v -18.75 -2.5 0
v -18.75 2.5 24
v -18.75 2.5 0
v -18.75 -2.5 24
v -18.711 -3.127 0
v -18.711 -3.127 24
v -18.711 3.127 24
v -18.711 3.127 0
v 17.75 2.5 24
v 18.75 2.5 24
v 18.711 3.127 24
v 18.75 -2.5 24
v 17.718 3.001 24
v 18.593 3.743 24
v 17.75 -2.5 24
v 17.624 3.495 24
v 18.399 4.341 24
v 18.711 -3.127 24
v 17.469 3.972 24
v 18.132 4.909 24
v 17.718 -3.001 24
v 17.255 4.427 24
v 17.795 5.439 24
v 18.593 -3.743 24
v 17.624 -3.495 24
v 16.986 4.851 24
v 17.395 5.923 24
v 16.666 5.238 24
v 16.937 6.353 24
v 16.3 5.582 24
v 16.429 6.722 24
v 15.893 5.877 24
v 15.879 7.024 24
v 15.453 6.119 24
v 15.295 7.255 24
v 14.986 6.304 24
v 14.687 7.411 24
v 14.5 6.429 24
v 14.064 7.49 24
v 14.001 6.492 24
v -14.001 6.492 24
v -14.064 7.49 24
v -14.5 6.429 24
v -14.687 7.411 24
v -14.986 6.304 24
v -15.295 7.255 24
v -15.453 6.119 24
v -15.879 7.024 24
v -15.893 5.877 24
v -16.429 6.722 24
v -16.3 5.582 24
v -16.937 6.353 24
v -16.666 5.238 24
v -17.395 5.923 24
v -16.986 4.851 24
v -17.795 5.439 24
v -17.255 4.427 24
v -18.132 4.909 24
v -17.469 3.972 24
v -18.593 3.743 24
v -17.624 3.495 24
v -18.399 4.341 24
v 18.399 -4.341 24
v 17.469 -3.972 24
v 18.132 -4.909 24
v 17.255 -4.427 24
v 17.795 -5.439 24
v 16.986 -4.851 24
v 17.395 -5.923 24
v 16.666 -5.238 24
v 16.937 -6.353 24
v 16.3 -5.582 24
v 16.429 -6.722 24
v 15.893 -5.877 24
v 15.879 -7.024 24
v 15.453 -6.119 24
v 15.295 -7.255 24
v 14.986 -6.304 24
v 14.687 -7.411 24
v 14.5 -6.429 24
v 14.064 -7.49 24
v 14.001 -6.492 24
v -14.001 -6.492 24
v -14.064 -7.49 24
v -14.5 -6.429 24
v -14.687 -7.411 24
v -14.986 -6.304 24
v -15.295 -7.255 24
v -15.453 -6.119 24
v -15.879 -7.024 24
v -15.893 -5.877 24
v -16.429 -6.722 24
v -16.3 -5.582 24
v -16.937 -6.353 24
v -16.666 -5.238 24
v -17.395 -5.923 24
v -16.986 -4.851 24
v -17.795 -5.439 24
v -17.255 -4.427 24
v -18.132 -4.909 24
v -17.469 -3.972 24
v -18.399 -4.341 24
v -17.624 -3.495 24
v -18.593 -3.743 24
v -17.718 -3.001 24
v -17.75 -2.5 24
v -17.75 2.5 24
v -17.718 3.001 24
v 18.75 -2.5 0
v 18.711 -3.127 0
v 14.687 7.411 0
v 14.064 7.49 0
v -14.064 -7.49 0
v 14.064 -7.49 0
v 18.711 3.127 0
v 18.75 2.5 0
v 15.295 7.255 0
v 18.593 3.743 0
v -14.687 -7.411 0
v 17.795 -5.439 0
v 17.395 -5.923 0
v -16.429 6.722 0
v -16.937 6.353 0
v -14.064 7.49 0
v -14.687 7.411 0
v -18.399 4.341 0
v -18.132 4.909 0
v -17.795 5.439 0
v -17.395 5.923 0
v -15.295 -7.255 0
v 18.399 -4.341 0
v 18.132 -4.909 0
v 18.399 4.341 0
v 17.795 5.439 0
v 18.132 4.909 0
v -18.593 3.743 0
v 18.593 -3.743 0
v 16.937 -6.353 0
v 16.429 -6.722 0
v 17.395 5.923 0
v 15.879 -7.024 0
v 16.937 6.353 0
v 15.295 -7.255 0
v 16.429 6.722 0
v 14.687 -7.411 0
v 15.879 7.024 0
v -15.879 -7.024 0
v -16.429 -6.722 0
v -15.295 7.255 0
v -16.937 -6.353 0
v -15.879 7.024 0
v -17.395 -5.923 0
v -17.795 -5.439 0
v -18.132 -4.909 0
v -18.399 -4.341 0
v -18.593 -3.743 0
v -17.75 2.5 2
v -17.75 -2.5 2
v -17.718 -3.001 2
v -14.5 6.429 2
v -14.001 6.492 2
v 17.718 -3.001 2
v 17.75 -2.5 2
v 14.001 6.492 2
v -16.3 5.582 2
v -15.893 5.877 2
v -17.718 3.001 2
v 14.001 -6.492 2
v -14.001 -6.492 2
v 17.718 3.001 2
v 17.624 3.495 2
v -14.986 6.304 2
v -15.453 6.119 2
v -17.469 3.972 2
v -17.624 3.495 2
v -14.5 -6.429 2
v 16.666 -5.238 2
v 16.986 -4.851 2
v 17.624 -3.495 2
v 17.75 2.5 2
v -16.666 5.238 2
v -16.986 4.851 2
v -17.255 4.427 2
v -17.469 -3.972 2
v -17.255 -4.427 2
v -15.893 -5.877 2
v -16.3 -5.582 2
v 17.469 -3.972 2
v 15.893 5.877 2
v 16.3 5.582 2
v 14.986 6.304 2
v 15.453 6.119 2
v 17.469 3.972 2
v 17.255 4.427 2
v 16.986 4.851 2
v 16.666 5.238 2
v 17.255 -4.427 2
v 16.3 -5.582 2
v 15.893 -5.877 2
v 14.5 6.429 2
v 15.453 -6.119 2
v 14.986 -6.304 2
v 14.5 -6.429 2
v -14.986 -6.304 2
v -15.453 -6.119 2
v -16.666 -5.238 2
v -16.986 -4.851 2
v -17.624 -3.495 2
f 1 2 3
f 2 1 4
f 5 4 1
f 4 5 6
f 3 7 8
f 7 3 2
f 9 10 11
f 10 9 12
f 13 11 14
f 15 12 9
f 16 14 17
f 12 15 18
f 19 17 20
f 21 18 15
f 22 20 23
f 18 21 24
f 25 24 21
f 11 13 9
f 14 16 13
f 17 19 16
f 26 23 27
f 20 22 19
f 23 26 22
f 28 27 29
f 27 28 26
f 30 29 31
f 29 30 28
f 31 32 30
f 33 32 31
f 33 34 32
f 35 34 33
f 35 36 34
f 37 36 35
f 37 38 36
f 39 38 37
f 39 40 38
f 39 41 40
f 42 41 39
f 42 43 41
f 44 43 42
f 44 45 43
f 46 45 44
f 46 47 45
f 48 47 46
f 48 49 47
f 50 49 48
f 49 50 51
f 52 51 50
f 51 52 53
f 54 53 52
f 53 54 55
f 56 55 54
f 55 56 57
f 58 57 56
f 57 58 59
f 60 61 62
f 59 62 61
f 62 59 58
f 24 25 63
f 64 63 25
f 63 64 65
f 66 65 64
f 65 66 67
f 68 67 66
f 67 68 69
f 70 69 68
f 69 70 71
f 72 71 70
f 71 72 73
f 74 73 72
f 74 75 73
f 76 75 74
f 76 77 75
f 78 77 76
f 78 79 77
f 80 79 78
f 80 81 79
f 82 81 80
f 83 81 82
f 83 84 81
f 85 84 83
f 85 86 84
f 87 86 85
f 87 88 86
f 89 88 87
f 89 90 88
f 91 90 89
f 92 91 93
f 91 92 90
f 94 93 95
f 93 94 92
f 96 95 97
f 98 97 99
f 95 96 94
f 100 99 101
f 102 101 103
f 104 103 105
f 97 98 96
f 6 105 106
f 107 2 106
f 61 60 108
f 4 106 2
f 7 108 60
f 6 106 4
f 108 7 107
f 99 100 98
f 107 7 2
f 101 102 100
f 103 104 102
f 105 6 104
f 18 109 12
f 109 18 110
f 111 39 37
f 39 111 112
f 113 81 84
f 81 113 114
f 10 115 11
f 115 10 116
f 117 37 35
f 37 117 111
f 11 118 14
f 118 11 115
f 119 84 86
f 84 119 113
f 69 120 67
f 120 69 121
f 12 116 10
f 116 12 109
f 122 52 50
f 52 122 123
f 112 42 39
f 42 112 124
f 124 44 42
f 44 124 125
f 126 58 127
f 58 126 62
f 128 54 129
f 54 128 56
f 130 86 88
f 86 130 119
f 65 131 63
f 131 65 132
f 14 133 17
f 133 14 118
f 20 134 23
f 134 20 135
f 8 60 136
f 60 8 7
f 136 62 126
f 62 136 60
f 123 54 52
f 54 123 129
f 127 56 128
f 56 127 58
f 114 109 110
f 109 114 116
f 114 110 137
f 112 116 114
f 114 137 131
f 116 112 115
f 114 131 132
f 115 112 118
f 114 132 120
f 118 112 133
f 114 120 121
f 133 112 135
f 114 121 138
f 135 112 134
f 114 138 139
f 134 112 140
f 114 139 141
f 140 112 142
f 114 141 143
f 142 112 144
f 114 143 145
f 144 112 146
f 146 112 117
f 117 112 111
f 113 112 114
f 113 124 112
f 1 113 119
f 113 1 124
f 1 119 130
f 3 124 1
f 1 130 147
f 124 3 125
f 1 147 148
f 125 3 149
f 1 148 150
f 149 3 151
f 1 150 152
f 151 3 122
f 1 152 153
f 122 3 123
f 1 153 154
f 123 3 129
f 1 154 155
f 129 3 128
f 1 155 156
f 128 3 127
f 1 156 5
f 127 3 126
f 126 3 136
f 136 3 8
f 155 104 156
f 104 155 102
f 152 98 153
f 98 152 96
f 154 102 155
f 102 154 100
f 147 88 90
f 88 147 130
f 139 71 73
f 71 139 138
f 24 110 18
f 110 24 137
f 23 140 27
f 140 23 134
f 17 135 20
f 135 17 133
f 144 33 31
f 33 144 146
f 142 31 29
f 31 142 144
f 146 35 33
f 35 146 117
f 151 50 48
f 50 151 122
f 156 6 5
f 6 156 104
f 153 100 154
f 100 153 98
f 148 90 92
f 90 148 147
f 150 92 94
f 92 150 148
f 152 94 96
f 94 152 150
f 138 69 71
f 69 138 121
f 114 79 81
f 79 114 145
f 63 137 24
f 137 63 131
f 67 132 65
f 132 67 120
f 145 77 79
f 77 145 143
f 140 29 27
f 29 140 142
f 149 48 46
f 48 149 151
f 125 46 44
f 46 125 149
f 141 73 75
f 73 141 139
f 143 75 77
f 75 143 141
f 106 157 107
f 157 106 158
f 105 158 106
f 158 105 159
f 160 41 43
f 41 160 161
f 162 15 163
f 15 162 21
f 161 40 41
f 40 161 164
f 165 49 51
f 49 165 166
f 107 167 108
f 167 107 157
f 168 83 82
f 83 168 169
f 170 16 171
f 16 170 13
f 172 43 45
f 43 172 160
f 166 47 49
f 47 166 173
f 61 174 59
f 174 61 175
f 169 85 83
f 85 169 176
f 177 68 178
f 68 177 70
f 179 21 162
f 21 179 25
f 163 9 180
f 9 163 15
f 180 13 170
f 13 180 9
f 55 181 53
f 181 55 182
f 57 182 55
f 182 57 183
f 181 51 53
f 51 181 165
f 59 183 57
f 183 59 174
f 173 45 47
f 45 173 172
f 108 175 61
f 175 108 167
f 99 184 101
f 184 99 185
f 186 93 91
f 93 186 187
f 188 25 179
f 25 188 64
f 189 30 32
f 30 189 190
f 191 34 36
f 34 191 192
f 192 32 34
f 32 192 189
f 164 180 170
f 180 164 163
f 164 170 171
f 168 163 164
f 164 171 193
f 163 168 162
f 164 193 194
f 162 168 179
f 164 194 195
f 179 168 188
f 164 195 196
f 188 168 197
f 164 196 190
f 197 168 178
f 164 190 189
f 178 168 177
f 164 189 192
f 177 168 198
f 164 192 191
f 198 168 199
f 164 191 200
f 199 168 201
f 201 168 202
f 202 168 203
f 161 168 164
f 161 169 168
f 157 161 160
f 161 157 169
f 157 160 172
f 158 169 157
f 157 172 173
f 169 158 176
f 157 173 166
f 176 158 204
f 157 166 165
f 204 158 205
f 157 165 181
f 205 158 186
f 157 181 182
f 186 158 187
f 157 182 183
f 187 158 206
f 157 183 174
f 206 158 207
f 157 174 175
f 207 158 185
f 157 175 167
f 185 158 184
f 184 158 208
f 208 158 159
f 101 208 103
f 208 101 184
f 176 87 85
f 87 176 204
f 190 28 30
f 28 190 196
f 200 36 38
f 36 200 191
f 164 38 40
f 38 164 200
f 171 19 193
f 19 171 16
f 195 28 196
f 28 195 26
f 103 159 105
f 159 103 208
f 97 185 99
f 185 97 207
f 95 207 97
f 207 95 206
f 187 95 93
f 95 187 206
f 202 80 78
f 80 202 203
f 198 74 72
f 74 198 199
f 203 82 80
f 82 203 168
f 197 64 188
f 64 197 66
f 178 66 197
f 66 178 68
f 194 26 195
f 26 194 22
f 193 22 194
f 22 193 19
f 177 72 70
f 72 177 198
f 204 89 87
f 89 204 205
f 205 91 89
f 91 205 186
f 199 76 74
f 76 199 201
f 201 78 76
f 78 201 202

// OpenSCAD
$fn = 50;


difference() {
	union() {
		hull() {
			translate(v = [-13.7500000000, 2.5000000000, 0]) {
				cylinder(h = 24, r = 5);
			}
			translate(v = [13.7500000000, 2.5000000000, 0]) {
				cylinder(h = 24, r = 5);
			}
			translate(v = [-13.7500000000, -2.5000000000, 0]) {
				cylinder(h = 24, r = 5);
			}
			translate(v = [13.7500000000, -2.5000000000, 0]) {
				cylinder(h = 24, r = 5);
			}
		}
	}
	union() {
		translate(v = [0, 0, 2]) {
			hull() {
				translate(v = [-13.7500000000, 2.5000000000, 0]) {
					cylinder(h = 22, r = 4);
				}
				translate(v = [13.7500000000, 2.5000000000, 0]) {
					cylinder(h = 22, r = 4);
				}
				translate(v = [-13.7500000000, -2.5000000000, 0]) {
					cylinder(h = 22, r = 4);
				}
				translate(v = [13.7500000000, -2.5000000000, 0]) {
					cylinder(h = 22, r = 4);
				}
			}
		}
	}
}
